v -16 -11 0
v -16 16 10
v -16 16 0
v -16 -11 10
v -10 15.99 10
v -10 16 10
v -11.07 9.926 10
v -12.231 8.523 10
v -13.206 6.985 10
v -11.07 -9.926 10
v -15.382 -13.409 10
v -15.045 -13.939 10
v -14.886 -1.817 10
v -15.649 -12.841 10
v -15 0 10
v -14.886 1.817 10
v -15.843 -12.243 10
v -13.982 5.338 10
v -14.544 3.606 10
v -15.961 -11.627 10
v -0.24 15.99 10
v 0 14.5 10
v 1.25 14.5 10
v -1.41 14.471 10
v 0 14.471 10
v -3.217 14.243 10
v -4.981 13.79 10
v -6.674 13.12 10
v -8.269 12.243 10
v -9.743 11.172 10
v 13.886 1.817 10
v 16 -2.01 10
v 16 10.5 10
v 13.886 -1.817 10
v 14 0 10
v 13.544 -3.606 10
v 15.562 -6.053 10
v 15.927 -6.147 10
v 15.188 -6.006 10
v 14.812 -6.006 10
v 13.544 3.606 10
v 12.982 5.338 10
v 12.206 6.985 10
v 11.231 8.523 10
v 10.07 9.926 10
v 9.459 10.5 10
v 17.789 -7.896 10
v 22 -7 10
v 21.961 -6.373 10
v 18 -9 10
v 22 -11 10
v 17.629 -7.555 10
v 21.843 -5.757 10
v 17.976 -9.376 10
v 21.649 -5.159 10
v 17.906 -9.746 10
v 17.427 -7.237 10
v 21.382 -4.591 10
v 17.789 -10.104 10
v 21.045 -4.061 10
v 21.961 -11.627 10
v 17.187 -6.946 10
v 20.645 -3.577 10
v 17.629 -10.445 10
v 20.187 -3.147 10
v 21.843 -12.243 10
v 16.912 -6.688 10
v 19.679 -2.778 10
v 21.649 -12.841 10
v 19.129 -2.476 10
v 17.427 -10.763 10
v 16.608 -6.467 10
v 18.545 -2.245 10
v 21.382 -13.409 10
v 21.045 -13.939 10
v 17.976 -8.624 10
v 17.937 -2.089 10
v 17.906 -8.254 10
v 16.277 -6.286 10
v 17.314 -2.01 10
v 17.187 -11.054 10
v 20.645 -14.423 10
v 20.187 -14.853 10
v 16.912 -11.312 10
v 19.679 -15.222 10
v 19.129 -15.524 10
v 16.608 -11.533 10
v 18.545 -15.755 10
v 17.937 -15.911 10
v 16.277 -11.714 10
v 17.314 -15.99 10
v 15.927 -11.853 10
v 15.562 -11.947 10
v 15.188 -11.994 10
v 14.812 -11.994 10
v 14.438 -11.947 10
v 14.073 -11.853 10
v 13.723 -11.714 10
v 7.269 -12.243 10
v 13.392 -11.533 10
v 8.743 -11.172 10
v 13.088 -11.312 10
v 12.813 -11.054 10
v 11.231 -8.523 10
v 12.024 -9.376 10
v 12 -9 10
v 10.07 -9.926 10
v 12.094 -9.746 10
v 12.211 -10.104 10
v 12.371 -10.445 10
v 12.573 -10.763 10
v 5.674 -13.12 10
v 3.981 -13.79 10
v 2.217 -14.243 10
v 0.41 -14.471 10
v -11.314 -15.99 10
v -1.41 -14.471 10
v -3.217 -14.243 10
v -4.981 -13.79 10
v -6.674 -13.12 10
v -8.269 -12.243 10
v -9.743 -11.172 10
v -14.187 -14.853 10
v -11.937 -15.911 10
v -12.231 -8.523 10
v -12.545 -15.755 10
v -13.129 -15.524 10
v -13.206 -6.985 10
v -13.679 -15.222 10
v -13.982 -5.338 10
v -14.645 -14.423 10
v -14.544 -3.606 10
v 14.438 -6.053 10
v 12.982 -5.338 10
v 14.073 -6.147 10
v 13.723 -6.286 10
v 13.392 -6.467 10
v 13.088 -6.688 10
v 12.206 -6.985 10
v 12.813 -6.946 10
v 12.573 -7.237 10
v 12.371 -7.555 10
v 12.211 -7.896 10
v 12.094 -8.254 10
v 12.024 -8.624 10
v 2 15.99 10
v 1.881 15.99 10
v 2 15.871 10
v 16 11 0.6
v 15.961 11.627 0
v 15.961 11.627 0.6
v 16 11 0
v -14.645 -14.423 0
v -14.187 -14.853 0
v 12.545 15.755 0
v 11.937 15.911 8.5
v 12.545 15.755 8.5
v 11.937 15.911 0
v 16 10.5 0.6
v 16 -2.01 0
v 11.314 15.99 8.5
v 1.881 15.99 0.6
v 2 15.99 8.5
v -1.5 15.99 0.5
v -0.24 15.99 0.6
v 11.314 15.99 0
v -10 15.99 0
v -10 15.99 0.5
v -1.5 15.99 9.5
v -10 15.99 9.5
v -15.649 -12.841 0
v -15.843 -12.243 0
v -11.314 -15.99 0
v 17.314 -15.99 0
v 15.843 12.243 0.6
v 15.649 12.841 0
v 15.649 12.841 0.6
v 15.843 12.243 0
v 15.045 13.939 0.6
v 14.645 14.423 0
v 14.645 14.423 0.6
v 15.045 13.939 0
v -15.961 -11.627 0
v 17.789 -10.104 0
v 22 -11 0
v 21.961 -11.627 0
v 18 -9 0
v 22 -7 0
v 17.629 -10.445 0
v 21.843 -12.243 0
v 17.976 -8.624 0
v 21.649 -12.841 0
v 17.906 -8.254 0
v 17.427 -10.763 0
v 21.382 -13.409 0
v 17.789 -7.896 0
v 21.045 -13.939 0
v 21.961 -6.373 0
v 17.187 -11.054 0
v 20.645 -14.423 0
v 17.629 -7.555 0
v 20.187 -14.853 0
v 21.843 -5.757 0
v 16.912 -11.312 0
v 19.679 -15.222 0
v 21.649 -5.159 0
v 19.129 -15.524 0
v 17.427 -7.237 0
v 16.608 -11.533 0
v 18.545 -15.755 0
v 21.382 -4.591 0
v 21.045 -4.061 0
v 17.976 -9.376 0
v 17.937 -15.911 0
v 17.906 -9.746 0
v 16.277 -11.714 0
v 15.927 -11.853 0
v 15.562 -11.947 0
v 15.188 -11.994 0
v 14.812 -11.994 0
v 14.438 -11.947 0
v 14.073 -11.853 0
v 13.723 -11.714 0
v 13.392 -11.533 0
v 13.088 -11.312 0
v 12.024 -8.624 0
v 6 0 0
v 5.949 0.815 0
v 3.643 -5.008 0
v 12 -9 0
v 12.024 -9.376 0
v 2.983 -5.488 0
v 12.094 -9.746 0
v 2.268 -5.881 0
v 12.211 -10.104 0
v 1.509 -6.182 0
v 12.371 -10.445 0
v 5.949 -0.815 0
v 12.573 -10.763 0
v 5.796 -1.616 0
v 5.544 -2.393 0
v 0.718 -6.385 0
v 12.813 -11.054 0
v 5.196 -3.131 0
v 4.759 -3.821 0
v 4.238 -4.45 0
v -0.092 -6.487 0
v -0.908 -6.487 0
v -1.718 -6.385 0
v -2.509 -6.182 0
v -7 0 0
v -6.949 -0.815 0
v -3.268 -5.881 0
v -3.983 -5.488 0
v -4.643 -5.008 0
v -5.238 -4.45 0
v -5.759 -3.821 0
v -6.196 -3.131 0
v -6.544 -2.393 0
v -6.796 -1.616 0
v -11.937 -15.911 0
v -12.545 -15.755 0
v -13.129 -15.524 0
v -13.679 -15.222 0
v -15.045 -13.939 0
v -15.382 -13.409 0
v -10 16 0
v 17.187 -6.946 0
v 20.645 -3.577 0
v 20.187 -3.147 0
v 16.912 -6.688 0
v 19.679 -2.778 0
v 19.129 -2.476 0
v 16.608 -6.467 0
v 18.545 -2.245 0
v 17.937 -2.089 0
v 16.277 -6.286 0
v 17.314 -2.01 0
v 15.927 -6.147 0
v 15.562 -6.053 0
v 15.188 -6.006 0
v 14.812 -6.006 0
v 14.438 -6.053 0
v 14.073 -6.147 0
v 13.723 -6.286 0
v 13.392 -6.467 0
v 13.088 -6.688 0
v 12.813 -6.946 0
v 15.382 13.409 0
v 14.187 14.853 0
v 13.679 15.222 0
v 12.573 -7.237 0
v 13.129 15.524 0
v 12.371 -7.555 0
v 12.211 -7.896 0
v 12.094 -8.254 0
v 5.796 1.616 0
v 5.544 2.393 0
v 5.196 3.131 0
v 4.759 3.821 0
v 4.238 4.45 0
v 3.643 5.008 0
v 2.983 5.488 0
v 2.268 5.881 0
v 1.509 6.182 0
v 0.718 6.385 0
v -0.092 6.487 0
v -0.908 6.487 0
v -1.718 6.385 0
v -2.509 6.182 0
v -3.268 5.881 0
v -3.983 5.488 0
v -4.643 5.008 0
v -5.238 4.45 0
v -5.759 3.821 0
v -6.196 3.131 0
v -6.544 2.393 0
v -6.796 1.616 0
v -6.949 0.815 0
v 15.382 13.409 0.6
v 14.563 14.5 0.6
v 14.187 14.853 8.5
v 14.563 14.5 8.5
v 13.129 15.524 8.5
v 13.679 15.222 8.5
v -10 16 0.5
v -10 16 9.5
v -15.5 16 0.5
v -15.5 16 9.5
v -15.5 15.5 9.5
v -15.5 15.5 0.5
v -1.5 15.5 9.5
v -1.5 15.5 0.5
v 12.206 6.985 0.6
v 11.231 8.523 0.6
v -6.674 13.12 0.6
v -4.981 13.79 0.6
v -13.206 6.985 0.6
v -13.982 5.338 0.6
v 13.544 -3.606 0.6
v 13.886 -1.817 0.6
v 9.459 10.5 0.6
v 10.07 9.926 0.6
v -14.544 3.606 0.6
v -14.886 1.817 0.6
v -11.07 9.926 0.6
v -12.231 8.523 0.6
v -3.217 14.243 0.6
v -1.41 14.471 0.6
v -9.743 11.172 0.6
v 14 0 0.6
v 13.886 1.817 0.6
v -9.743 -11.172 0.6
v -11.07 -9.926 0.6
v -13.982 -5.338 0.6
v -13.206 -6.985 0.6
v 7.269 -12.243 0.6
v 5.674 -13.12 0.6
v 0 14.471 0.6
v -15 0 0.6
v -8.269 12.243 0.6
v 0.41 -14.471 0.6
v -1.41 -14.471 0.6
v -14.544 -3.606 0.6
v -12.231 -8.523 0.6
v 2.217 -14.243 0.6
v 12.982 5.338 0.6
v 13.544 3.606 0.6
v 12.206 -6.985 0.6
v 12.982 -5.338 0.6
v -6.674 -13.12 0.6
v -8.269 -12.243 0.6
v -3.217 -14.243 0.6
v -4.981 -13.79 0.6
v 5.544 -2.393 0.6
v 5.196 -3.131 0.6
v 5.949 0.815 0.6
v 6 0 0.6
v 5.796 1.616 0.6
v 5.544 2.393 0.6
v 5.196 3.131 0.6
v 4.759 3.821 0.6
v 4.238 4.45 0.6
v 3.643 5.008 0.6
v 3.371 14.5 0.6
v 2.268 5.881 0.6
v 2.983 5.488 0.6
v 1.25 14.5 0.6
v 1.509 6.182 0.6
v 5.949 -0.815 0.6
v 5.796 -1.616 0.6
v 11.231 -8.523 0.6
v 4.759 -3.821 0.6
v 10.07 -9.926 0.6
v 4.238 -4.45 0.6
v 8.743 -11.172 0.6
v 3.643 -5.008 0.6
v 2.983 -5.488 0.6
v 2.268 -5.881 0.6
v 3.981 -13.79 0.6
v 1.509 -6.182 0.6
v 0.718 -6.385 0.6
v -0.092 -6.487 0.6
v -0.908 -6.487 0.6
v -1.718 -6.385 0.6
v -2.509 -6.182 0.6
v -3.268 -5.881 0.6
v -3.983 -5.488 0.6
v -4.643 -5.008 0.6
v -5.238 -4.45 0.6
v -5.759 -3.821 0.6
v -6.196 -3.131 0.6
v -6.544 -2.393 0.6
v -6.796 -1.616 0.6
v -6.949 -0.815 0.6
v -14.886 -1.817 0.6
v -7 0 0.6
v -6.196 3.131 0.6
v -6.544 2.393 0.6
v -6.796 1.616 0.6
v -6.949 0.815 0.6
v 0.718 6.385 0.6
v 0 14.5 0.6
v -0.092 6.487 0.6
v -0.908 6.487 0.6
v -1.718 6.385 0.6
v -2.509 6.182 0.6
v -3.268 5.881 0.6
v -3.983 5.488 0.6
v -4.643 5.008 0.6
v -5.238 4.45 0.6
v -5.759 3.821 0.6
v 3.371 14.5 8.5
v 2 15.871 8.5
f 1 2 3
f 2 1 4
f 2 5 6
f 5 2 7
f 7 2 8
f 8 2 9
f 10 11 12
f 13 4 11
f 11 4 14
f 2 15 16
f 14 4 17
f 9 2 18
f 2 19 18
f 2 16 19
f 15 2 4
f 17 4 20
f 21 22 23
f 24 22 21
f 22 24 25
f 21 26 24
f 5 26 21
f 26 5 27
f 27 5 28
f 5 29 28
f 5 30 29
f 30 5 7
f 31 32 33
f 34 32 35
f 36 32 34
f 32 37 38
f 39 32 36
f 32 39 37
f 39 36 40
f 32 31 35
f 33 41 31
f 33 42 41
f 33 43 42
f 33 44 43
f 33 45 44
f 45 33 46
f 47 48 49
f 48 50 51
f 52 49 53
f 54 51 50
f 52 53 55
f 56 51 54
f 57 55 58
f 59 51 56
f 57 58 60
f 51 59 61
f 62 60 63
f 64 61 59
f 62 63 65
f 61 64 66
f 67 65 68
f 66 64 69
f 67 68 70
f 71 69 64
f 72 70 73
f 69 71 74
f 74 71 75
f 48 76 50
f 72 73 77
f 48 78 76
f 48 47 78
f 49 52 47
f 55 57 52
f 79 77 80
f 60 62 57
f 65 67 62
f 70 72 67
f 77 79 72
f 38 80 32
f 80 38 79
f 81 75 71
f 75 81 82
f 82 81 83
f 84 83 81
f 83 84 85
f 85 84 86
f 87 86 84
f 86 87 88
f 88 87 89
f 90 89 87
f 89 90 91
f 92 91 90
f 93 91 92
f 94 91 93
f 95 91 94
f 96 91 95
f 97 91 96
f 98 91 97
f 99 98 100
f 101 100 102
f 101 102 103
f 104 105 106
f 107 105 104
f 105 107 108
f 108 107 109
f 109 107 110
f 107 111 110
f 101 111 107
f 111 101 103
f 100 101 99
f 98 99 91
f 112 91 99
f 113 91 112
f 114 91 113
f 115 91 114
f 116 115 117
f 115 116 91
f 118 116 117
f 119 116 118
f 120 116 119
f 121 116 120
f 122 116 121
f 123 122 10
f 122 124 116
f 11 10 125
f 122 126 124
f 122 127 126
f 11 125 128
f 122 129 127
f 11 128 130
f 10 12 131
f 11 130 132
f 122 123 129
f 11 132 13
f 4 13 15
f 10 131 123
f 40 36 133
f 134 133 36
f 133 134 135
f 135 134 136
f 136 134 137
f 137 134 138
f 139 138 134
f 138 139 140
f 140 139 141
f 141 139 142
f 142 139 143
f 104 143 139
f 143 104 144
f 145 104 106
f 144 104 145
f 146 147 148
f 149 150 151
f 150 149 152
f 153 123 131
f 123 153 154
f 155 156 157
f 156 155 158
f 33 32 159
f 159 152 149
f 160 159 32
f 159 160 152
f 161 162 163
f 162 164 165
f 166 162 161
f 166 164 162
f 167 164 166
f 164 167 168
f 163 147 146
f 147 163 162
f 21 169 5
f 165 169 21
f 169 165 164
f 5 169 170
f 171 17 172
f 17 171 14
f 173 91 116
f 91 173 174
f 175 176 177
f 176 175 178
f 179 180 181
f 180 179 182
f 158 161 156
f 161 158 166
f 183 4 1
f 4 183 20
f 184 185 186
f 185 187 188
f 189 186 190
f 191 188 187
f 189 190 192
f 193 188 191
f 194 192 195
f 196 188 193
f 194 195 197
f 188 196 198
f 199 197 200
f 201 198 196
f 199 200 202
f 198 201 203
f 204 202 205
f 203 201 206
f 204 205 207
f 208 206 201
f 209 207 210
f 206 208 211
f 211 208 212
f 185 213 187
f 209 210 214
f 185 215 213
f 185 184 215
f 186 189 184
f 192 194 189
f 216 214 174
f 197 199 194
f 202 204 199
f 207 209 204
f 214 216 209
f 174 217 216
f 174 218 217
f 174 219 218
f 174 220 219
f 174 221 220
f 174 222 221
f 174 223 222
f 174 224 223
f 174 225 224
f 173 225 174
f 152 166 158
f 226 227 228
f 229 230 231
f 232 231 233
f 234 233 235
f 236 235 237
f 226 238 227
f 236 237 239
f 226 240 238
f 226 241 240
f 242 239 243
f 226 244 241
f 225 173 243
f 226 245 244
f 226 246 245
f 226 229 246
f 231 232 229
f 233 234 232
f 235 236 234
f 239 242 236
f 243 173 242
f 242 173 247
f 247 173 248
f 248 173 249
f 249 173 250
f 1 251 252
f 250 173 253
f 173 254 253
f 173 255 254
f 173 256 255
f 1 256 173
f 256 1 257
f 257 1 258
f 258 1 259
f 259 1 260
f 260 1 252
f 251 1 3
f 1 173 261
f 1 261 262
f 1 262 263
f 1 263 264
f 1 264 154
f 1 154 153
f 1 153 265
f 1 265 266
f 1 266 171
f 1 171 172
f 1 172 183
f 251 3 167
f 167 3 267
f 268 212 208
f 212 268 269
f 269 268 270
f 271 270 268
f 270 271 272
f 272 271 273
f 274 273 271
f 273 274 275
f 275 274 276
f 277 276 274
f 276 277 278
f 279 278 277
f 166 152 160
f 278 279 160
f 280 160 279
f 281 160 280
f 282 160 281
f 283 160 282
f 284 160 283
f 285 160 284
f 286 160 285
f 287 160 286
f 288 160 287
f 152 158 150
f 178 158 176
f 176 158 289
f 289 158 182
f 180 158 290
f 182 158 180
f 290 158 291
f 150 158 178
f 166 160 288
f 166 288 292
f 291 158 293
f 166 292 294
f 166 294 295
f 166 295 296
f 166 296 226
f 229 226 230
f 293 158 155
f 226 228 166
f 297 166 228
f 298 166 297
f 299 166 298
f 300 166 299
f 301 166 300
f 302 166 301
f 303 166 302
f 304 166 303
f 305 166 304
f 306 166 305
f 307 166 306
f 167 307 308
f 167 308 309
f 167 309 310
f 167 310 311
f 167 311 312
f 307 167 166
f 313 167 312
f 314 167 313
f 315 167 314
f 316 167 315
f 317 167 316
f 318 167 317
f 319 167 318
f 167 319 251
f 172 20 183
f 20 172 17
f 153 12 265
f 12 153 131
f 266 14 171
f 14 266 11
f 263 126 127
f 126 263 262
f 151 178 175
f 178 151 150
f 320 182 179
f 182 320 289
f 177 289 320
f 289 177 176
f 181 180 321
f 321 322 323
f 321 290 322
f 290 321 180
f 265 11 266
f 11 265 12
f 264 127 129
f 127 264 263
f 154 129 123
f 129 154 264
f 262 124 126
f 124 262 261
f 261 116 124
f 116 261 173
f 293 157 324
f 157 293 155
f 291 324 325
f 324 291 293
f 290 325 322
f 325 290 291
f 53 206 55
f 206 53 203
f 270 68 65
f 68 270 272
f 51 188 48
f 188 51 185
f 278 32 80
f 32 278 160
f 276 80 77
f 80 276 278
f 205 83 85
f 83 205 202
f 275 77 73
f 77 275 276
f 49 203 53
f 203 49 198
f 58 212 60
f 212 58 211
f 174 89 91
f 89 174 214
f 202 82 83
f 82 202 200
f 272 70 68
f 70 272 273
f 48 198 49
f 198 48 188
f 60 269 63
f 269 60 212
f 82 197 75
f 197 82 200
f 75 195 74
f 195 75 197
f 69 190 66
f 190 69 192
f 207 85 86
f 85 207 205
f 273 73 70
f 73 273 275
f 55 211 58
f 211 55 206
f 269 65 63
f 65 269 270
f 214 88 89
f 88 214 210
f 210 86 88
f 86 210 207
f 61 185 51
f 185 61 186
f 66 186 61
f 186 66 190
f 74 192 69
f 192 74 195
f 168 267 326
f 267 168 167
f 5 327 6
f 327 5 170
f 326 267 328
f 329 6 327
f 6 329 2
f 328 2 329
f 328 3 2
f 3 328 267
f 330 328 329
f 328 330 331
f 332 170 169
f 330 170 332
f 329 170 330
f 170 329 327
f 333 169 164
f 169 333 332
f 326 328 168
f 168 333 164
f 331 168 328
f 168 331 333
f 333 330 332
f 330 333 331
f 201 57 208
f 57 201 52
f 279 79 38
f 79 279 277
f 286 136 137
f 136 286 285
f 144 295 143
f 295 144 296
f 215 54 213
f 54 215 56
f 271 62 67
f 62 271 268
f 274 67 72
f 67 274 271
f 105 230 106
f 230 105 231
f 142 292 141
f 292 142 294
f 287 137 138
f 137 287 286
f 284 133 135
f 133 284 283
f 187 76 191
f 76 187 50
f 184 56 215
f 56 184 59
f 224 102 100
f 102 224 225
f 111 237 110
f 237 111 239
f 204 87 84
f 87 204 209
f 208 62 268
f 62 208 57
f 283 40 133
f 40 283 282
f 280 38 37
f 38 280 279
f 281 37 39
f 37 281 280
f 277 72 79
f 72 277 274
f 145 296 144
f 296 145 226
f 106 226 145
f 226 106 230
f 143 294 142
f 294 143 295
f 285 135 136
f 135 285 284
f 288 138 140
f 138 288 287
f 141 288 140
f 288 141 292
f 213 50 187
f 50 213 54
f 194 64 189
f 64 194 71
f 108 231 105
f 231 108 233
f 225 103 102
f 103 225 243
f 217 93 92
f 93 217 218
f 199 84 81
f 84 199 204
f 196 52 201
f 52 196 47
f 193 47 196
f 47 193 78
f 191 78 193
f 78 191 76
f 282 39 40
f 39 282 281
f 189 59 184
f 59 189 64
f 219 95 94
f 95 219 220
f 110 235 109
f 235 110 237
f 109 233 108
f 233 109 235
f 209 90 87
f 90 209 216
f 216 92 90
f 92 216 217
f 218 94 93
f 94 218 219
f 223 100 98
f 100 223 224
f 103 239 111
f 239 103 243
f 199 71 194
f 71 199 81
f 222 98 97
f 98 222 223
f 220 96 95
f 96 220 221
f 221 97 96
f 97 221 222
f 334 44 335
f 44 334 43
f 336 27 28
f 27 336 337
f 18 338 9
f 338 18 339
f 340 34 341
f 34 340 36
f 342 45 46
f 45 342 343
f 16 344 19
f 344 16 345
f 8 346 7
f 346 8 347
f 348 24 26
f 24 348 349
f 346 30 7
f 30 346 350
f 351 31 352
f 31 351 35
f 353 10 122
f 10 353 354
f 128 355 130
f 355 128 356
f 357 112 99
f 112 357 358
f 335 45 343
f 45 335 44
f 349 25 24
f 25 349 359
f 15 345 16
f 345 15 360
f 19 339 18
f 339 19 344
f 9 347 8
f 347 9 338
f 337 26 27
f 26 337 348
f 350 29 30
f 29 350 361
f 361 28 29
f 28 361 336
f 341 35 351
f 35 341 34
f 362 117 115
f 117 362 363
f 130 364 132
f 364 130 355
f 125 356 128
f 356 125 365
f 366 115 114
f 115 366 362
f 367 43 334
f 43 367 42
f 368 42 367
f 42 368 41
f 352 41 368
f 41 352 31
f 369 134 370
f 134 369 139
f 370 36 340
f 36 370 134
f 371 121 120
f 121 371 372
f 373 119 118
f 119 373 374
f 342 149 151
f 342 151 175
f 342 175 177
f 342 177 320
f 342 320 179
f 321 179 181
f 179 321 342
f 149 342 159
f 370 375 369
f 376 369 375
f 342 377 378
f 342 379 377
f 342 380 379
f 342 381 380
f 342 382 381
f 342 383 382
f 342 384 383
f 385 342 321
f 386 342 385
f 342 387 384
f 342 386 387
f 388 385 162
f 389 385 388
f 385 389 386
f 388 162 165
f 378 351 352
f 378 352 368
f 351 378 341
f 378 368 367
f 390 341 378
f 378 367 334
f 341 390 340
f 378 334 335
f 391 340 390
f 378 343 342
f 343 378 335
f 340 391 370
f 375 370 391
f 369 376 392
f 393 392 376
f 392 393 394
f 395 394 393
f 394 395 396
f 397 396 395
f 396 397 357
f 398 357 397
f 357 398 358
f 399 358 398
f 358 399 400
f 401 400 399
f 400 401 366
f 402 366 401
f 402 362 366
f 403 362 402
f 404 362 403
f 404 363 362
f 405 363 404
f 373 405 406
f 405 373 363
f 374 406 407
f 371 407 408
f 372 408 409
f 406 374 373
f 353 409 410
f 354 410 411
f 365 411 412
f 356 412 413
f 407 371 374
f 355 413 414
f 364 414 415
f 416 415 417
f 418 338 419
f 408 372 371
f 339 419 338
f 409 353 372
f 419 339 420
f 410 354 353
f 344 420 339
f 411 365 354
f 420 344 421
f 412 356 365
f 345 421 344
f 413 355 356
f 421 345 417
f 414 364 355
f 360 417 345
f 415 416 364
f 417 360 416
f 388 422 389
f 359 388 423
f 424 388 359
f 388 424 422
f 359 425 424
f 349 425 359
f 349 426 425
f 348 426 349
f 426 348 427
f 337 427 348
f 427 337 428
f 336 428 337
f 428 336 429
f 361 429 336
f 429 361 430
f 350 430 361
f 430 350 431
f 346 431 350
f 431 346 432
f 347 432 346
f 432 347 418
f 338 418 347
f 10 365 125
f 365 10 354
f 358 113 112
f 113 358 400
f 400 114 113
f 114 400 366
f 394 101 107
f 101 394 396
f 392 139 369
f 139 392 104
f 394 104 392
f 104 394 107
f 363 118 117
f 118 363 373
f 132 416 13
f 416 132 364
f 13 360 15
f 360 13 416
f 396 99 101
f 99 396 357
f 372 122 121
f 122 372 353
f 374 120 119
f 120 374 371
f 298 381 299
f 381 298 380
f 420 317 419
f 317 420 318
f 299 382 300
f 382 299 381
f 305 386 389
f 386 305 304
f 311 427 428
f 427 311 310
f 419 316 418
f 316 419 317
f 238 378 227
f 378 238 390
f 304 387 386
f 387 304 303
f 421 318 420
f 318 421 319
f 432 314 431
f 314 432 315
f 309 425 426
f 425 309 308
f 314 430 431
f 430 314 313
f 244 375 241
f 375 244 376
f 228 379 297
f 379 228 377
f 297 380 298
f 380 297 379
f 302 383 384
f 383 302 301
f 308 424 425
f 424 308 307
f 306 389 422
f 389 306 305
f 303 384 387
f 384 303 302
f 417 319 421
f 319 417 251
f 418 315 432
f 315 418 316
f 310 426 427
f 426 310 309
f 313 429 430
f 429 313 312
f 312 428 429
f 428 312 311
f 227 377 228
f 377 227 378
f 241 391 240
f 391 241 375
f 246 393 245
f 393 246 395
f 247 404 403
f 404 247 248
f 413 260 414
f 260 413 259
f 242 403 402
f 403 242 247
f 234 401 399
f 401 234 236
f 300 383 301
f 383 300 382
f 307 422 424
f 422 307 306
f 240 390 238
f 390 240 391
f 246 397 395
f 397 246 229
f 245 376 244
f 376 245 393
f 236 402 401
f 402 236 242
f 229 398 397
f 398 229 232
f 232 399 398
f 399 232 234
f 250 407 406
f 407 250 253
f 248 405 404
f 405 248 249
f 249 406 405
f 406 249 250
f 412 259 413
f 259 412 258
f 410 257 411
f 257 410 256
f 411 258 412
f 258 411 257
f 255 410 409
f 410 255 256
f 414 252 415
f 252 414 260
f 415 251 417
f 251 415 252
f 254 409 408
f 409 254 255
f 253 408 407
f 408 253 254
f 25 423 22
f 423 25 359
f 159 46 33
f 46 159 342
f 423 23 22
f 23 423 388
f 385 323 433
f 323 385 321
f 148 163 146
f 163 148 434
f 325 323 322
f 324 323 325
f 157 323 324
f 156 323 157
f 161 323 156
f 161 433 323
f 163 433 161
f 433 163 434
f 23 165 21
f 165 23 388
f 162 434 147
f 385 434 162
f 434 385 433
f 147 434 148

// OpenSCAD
$fn = 50;


difference() {
	union() {
		hull() {
			translate(v = [-11.0000000000, 11.0000000000, 0]) {
				cylinder(h = 10, r = 5);
			}
			translate(v = [11.0000000000, 11.0000000000, 0]) {
				cylinder(h = 10, r = 5);
			}
			translate(v = [-11.0000000000, -11.0000000000, 0]) {
				cylinder(h = 10, r = 5);
			}
			translate(v = [11.0000000000, -11.0000000000, 0]) {
				cylinder(h = 10, r = 5);
			}
		}
		translate(v = [7.5000000000, -9.0000000000, 0]) {
			hull() {
				translate(v = [-9.5000000000, 2.0000000000, 0]) {
					cylinder(h = 10, r = 5);
				}
				translate(v = [9.5000000000, 2.0000000000, 0]) {
					cylinder(h = 10, r = 5);
				}
				translate(v = [-9.5000000000, -2.0000000000, 0]) {
					cylinder(h = 10, r = 5);
				}
				translate(v = [9.5000000000, -2.0000000000, 0]) {
					cylinder(h = 10, r = 5);
				}
			}
		}
		translate(v = [-16.0000000000, 10.0000000000, 0]) {
			cube(size = [6, 6, 10]);
		}
	}
	union() {
		translate(v = [-15.5000000000, 15.5000000000, 0.5000000000]) {
			cube(size = [14, 0.5000000000, 9.0000000000]);
		}
		translate(v = [15.0000000000, -9.0000000000, -50.0000000000]) {
			cylinder(h = 100, r = 3.0000000000);
		}
		translate(v = [-0.5000000000, 0.0000000000, 0.6000000000]) {
			cylinder(h = 12.4000000000, r = 14.5000000000);
		}
		translate(v = [-0.5000000000, 0.0000000000, -5.0000000000]) {
			cylinder(h = 10, r = 6.5000000000);
		}
		translate(v = [0.0000000000, 10.5000000000, 0.6000000000]) {
			cube(size = [16.0000000000, 4, 12.4000000000]);
		}
		translate(v = [2.0000000000, 10.5000000000, 8.5000000000]) {
			cube(size = [14.0000000000, 7, 1.5000000000]);
		}
		translate(v = [-3.0000000000, 18.7500000000, 0.6000000000]) {
			rotate(a = [0, 0, -45]) {
				cube(size = [10, 1.5000000000, 12.4000000000]);
			}
		}
		translate(v = [2.2500000000, 11.0000000000, 0.6000000000]) {
			cube(size = [7.5000000000, 2, 9.4000000000]);
		}
	}
}
